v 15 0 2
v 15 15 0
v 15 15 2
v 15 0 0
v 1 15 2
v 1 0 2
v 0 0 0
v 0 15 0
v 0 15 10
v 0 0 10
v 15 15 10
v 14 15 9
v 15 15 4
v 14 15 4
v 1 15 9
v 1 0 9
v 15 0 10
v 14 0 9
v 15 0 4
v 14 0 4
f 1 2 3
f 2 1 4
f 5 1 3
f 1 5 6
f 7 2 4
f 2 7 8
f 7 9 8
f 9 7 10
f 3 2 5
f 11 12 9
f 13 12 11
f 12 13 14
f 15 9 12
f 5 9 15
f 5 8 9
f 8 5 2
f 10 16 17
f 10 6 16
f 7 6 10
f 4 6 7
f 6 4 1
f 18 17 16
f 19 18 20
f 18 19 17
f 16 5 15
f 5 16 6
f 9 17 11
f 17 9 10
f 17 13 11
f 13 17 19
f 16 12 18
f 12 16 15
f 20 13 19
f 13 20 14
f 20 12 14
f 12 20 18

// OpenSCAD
epaisseur_base = 2;
epaisseur = 1;
gap = 2;

cube([15,15,epaisseur_base]);
cube([epaisseur,15,10]);
translate([0,0,10-epaisseur])
	cube([15,15,epaisseur]);

translate([15-epaisseur,0,epaisseur_base+gap])
	cube([epaisseur,15,10-epaisseur_base-gap]);
